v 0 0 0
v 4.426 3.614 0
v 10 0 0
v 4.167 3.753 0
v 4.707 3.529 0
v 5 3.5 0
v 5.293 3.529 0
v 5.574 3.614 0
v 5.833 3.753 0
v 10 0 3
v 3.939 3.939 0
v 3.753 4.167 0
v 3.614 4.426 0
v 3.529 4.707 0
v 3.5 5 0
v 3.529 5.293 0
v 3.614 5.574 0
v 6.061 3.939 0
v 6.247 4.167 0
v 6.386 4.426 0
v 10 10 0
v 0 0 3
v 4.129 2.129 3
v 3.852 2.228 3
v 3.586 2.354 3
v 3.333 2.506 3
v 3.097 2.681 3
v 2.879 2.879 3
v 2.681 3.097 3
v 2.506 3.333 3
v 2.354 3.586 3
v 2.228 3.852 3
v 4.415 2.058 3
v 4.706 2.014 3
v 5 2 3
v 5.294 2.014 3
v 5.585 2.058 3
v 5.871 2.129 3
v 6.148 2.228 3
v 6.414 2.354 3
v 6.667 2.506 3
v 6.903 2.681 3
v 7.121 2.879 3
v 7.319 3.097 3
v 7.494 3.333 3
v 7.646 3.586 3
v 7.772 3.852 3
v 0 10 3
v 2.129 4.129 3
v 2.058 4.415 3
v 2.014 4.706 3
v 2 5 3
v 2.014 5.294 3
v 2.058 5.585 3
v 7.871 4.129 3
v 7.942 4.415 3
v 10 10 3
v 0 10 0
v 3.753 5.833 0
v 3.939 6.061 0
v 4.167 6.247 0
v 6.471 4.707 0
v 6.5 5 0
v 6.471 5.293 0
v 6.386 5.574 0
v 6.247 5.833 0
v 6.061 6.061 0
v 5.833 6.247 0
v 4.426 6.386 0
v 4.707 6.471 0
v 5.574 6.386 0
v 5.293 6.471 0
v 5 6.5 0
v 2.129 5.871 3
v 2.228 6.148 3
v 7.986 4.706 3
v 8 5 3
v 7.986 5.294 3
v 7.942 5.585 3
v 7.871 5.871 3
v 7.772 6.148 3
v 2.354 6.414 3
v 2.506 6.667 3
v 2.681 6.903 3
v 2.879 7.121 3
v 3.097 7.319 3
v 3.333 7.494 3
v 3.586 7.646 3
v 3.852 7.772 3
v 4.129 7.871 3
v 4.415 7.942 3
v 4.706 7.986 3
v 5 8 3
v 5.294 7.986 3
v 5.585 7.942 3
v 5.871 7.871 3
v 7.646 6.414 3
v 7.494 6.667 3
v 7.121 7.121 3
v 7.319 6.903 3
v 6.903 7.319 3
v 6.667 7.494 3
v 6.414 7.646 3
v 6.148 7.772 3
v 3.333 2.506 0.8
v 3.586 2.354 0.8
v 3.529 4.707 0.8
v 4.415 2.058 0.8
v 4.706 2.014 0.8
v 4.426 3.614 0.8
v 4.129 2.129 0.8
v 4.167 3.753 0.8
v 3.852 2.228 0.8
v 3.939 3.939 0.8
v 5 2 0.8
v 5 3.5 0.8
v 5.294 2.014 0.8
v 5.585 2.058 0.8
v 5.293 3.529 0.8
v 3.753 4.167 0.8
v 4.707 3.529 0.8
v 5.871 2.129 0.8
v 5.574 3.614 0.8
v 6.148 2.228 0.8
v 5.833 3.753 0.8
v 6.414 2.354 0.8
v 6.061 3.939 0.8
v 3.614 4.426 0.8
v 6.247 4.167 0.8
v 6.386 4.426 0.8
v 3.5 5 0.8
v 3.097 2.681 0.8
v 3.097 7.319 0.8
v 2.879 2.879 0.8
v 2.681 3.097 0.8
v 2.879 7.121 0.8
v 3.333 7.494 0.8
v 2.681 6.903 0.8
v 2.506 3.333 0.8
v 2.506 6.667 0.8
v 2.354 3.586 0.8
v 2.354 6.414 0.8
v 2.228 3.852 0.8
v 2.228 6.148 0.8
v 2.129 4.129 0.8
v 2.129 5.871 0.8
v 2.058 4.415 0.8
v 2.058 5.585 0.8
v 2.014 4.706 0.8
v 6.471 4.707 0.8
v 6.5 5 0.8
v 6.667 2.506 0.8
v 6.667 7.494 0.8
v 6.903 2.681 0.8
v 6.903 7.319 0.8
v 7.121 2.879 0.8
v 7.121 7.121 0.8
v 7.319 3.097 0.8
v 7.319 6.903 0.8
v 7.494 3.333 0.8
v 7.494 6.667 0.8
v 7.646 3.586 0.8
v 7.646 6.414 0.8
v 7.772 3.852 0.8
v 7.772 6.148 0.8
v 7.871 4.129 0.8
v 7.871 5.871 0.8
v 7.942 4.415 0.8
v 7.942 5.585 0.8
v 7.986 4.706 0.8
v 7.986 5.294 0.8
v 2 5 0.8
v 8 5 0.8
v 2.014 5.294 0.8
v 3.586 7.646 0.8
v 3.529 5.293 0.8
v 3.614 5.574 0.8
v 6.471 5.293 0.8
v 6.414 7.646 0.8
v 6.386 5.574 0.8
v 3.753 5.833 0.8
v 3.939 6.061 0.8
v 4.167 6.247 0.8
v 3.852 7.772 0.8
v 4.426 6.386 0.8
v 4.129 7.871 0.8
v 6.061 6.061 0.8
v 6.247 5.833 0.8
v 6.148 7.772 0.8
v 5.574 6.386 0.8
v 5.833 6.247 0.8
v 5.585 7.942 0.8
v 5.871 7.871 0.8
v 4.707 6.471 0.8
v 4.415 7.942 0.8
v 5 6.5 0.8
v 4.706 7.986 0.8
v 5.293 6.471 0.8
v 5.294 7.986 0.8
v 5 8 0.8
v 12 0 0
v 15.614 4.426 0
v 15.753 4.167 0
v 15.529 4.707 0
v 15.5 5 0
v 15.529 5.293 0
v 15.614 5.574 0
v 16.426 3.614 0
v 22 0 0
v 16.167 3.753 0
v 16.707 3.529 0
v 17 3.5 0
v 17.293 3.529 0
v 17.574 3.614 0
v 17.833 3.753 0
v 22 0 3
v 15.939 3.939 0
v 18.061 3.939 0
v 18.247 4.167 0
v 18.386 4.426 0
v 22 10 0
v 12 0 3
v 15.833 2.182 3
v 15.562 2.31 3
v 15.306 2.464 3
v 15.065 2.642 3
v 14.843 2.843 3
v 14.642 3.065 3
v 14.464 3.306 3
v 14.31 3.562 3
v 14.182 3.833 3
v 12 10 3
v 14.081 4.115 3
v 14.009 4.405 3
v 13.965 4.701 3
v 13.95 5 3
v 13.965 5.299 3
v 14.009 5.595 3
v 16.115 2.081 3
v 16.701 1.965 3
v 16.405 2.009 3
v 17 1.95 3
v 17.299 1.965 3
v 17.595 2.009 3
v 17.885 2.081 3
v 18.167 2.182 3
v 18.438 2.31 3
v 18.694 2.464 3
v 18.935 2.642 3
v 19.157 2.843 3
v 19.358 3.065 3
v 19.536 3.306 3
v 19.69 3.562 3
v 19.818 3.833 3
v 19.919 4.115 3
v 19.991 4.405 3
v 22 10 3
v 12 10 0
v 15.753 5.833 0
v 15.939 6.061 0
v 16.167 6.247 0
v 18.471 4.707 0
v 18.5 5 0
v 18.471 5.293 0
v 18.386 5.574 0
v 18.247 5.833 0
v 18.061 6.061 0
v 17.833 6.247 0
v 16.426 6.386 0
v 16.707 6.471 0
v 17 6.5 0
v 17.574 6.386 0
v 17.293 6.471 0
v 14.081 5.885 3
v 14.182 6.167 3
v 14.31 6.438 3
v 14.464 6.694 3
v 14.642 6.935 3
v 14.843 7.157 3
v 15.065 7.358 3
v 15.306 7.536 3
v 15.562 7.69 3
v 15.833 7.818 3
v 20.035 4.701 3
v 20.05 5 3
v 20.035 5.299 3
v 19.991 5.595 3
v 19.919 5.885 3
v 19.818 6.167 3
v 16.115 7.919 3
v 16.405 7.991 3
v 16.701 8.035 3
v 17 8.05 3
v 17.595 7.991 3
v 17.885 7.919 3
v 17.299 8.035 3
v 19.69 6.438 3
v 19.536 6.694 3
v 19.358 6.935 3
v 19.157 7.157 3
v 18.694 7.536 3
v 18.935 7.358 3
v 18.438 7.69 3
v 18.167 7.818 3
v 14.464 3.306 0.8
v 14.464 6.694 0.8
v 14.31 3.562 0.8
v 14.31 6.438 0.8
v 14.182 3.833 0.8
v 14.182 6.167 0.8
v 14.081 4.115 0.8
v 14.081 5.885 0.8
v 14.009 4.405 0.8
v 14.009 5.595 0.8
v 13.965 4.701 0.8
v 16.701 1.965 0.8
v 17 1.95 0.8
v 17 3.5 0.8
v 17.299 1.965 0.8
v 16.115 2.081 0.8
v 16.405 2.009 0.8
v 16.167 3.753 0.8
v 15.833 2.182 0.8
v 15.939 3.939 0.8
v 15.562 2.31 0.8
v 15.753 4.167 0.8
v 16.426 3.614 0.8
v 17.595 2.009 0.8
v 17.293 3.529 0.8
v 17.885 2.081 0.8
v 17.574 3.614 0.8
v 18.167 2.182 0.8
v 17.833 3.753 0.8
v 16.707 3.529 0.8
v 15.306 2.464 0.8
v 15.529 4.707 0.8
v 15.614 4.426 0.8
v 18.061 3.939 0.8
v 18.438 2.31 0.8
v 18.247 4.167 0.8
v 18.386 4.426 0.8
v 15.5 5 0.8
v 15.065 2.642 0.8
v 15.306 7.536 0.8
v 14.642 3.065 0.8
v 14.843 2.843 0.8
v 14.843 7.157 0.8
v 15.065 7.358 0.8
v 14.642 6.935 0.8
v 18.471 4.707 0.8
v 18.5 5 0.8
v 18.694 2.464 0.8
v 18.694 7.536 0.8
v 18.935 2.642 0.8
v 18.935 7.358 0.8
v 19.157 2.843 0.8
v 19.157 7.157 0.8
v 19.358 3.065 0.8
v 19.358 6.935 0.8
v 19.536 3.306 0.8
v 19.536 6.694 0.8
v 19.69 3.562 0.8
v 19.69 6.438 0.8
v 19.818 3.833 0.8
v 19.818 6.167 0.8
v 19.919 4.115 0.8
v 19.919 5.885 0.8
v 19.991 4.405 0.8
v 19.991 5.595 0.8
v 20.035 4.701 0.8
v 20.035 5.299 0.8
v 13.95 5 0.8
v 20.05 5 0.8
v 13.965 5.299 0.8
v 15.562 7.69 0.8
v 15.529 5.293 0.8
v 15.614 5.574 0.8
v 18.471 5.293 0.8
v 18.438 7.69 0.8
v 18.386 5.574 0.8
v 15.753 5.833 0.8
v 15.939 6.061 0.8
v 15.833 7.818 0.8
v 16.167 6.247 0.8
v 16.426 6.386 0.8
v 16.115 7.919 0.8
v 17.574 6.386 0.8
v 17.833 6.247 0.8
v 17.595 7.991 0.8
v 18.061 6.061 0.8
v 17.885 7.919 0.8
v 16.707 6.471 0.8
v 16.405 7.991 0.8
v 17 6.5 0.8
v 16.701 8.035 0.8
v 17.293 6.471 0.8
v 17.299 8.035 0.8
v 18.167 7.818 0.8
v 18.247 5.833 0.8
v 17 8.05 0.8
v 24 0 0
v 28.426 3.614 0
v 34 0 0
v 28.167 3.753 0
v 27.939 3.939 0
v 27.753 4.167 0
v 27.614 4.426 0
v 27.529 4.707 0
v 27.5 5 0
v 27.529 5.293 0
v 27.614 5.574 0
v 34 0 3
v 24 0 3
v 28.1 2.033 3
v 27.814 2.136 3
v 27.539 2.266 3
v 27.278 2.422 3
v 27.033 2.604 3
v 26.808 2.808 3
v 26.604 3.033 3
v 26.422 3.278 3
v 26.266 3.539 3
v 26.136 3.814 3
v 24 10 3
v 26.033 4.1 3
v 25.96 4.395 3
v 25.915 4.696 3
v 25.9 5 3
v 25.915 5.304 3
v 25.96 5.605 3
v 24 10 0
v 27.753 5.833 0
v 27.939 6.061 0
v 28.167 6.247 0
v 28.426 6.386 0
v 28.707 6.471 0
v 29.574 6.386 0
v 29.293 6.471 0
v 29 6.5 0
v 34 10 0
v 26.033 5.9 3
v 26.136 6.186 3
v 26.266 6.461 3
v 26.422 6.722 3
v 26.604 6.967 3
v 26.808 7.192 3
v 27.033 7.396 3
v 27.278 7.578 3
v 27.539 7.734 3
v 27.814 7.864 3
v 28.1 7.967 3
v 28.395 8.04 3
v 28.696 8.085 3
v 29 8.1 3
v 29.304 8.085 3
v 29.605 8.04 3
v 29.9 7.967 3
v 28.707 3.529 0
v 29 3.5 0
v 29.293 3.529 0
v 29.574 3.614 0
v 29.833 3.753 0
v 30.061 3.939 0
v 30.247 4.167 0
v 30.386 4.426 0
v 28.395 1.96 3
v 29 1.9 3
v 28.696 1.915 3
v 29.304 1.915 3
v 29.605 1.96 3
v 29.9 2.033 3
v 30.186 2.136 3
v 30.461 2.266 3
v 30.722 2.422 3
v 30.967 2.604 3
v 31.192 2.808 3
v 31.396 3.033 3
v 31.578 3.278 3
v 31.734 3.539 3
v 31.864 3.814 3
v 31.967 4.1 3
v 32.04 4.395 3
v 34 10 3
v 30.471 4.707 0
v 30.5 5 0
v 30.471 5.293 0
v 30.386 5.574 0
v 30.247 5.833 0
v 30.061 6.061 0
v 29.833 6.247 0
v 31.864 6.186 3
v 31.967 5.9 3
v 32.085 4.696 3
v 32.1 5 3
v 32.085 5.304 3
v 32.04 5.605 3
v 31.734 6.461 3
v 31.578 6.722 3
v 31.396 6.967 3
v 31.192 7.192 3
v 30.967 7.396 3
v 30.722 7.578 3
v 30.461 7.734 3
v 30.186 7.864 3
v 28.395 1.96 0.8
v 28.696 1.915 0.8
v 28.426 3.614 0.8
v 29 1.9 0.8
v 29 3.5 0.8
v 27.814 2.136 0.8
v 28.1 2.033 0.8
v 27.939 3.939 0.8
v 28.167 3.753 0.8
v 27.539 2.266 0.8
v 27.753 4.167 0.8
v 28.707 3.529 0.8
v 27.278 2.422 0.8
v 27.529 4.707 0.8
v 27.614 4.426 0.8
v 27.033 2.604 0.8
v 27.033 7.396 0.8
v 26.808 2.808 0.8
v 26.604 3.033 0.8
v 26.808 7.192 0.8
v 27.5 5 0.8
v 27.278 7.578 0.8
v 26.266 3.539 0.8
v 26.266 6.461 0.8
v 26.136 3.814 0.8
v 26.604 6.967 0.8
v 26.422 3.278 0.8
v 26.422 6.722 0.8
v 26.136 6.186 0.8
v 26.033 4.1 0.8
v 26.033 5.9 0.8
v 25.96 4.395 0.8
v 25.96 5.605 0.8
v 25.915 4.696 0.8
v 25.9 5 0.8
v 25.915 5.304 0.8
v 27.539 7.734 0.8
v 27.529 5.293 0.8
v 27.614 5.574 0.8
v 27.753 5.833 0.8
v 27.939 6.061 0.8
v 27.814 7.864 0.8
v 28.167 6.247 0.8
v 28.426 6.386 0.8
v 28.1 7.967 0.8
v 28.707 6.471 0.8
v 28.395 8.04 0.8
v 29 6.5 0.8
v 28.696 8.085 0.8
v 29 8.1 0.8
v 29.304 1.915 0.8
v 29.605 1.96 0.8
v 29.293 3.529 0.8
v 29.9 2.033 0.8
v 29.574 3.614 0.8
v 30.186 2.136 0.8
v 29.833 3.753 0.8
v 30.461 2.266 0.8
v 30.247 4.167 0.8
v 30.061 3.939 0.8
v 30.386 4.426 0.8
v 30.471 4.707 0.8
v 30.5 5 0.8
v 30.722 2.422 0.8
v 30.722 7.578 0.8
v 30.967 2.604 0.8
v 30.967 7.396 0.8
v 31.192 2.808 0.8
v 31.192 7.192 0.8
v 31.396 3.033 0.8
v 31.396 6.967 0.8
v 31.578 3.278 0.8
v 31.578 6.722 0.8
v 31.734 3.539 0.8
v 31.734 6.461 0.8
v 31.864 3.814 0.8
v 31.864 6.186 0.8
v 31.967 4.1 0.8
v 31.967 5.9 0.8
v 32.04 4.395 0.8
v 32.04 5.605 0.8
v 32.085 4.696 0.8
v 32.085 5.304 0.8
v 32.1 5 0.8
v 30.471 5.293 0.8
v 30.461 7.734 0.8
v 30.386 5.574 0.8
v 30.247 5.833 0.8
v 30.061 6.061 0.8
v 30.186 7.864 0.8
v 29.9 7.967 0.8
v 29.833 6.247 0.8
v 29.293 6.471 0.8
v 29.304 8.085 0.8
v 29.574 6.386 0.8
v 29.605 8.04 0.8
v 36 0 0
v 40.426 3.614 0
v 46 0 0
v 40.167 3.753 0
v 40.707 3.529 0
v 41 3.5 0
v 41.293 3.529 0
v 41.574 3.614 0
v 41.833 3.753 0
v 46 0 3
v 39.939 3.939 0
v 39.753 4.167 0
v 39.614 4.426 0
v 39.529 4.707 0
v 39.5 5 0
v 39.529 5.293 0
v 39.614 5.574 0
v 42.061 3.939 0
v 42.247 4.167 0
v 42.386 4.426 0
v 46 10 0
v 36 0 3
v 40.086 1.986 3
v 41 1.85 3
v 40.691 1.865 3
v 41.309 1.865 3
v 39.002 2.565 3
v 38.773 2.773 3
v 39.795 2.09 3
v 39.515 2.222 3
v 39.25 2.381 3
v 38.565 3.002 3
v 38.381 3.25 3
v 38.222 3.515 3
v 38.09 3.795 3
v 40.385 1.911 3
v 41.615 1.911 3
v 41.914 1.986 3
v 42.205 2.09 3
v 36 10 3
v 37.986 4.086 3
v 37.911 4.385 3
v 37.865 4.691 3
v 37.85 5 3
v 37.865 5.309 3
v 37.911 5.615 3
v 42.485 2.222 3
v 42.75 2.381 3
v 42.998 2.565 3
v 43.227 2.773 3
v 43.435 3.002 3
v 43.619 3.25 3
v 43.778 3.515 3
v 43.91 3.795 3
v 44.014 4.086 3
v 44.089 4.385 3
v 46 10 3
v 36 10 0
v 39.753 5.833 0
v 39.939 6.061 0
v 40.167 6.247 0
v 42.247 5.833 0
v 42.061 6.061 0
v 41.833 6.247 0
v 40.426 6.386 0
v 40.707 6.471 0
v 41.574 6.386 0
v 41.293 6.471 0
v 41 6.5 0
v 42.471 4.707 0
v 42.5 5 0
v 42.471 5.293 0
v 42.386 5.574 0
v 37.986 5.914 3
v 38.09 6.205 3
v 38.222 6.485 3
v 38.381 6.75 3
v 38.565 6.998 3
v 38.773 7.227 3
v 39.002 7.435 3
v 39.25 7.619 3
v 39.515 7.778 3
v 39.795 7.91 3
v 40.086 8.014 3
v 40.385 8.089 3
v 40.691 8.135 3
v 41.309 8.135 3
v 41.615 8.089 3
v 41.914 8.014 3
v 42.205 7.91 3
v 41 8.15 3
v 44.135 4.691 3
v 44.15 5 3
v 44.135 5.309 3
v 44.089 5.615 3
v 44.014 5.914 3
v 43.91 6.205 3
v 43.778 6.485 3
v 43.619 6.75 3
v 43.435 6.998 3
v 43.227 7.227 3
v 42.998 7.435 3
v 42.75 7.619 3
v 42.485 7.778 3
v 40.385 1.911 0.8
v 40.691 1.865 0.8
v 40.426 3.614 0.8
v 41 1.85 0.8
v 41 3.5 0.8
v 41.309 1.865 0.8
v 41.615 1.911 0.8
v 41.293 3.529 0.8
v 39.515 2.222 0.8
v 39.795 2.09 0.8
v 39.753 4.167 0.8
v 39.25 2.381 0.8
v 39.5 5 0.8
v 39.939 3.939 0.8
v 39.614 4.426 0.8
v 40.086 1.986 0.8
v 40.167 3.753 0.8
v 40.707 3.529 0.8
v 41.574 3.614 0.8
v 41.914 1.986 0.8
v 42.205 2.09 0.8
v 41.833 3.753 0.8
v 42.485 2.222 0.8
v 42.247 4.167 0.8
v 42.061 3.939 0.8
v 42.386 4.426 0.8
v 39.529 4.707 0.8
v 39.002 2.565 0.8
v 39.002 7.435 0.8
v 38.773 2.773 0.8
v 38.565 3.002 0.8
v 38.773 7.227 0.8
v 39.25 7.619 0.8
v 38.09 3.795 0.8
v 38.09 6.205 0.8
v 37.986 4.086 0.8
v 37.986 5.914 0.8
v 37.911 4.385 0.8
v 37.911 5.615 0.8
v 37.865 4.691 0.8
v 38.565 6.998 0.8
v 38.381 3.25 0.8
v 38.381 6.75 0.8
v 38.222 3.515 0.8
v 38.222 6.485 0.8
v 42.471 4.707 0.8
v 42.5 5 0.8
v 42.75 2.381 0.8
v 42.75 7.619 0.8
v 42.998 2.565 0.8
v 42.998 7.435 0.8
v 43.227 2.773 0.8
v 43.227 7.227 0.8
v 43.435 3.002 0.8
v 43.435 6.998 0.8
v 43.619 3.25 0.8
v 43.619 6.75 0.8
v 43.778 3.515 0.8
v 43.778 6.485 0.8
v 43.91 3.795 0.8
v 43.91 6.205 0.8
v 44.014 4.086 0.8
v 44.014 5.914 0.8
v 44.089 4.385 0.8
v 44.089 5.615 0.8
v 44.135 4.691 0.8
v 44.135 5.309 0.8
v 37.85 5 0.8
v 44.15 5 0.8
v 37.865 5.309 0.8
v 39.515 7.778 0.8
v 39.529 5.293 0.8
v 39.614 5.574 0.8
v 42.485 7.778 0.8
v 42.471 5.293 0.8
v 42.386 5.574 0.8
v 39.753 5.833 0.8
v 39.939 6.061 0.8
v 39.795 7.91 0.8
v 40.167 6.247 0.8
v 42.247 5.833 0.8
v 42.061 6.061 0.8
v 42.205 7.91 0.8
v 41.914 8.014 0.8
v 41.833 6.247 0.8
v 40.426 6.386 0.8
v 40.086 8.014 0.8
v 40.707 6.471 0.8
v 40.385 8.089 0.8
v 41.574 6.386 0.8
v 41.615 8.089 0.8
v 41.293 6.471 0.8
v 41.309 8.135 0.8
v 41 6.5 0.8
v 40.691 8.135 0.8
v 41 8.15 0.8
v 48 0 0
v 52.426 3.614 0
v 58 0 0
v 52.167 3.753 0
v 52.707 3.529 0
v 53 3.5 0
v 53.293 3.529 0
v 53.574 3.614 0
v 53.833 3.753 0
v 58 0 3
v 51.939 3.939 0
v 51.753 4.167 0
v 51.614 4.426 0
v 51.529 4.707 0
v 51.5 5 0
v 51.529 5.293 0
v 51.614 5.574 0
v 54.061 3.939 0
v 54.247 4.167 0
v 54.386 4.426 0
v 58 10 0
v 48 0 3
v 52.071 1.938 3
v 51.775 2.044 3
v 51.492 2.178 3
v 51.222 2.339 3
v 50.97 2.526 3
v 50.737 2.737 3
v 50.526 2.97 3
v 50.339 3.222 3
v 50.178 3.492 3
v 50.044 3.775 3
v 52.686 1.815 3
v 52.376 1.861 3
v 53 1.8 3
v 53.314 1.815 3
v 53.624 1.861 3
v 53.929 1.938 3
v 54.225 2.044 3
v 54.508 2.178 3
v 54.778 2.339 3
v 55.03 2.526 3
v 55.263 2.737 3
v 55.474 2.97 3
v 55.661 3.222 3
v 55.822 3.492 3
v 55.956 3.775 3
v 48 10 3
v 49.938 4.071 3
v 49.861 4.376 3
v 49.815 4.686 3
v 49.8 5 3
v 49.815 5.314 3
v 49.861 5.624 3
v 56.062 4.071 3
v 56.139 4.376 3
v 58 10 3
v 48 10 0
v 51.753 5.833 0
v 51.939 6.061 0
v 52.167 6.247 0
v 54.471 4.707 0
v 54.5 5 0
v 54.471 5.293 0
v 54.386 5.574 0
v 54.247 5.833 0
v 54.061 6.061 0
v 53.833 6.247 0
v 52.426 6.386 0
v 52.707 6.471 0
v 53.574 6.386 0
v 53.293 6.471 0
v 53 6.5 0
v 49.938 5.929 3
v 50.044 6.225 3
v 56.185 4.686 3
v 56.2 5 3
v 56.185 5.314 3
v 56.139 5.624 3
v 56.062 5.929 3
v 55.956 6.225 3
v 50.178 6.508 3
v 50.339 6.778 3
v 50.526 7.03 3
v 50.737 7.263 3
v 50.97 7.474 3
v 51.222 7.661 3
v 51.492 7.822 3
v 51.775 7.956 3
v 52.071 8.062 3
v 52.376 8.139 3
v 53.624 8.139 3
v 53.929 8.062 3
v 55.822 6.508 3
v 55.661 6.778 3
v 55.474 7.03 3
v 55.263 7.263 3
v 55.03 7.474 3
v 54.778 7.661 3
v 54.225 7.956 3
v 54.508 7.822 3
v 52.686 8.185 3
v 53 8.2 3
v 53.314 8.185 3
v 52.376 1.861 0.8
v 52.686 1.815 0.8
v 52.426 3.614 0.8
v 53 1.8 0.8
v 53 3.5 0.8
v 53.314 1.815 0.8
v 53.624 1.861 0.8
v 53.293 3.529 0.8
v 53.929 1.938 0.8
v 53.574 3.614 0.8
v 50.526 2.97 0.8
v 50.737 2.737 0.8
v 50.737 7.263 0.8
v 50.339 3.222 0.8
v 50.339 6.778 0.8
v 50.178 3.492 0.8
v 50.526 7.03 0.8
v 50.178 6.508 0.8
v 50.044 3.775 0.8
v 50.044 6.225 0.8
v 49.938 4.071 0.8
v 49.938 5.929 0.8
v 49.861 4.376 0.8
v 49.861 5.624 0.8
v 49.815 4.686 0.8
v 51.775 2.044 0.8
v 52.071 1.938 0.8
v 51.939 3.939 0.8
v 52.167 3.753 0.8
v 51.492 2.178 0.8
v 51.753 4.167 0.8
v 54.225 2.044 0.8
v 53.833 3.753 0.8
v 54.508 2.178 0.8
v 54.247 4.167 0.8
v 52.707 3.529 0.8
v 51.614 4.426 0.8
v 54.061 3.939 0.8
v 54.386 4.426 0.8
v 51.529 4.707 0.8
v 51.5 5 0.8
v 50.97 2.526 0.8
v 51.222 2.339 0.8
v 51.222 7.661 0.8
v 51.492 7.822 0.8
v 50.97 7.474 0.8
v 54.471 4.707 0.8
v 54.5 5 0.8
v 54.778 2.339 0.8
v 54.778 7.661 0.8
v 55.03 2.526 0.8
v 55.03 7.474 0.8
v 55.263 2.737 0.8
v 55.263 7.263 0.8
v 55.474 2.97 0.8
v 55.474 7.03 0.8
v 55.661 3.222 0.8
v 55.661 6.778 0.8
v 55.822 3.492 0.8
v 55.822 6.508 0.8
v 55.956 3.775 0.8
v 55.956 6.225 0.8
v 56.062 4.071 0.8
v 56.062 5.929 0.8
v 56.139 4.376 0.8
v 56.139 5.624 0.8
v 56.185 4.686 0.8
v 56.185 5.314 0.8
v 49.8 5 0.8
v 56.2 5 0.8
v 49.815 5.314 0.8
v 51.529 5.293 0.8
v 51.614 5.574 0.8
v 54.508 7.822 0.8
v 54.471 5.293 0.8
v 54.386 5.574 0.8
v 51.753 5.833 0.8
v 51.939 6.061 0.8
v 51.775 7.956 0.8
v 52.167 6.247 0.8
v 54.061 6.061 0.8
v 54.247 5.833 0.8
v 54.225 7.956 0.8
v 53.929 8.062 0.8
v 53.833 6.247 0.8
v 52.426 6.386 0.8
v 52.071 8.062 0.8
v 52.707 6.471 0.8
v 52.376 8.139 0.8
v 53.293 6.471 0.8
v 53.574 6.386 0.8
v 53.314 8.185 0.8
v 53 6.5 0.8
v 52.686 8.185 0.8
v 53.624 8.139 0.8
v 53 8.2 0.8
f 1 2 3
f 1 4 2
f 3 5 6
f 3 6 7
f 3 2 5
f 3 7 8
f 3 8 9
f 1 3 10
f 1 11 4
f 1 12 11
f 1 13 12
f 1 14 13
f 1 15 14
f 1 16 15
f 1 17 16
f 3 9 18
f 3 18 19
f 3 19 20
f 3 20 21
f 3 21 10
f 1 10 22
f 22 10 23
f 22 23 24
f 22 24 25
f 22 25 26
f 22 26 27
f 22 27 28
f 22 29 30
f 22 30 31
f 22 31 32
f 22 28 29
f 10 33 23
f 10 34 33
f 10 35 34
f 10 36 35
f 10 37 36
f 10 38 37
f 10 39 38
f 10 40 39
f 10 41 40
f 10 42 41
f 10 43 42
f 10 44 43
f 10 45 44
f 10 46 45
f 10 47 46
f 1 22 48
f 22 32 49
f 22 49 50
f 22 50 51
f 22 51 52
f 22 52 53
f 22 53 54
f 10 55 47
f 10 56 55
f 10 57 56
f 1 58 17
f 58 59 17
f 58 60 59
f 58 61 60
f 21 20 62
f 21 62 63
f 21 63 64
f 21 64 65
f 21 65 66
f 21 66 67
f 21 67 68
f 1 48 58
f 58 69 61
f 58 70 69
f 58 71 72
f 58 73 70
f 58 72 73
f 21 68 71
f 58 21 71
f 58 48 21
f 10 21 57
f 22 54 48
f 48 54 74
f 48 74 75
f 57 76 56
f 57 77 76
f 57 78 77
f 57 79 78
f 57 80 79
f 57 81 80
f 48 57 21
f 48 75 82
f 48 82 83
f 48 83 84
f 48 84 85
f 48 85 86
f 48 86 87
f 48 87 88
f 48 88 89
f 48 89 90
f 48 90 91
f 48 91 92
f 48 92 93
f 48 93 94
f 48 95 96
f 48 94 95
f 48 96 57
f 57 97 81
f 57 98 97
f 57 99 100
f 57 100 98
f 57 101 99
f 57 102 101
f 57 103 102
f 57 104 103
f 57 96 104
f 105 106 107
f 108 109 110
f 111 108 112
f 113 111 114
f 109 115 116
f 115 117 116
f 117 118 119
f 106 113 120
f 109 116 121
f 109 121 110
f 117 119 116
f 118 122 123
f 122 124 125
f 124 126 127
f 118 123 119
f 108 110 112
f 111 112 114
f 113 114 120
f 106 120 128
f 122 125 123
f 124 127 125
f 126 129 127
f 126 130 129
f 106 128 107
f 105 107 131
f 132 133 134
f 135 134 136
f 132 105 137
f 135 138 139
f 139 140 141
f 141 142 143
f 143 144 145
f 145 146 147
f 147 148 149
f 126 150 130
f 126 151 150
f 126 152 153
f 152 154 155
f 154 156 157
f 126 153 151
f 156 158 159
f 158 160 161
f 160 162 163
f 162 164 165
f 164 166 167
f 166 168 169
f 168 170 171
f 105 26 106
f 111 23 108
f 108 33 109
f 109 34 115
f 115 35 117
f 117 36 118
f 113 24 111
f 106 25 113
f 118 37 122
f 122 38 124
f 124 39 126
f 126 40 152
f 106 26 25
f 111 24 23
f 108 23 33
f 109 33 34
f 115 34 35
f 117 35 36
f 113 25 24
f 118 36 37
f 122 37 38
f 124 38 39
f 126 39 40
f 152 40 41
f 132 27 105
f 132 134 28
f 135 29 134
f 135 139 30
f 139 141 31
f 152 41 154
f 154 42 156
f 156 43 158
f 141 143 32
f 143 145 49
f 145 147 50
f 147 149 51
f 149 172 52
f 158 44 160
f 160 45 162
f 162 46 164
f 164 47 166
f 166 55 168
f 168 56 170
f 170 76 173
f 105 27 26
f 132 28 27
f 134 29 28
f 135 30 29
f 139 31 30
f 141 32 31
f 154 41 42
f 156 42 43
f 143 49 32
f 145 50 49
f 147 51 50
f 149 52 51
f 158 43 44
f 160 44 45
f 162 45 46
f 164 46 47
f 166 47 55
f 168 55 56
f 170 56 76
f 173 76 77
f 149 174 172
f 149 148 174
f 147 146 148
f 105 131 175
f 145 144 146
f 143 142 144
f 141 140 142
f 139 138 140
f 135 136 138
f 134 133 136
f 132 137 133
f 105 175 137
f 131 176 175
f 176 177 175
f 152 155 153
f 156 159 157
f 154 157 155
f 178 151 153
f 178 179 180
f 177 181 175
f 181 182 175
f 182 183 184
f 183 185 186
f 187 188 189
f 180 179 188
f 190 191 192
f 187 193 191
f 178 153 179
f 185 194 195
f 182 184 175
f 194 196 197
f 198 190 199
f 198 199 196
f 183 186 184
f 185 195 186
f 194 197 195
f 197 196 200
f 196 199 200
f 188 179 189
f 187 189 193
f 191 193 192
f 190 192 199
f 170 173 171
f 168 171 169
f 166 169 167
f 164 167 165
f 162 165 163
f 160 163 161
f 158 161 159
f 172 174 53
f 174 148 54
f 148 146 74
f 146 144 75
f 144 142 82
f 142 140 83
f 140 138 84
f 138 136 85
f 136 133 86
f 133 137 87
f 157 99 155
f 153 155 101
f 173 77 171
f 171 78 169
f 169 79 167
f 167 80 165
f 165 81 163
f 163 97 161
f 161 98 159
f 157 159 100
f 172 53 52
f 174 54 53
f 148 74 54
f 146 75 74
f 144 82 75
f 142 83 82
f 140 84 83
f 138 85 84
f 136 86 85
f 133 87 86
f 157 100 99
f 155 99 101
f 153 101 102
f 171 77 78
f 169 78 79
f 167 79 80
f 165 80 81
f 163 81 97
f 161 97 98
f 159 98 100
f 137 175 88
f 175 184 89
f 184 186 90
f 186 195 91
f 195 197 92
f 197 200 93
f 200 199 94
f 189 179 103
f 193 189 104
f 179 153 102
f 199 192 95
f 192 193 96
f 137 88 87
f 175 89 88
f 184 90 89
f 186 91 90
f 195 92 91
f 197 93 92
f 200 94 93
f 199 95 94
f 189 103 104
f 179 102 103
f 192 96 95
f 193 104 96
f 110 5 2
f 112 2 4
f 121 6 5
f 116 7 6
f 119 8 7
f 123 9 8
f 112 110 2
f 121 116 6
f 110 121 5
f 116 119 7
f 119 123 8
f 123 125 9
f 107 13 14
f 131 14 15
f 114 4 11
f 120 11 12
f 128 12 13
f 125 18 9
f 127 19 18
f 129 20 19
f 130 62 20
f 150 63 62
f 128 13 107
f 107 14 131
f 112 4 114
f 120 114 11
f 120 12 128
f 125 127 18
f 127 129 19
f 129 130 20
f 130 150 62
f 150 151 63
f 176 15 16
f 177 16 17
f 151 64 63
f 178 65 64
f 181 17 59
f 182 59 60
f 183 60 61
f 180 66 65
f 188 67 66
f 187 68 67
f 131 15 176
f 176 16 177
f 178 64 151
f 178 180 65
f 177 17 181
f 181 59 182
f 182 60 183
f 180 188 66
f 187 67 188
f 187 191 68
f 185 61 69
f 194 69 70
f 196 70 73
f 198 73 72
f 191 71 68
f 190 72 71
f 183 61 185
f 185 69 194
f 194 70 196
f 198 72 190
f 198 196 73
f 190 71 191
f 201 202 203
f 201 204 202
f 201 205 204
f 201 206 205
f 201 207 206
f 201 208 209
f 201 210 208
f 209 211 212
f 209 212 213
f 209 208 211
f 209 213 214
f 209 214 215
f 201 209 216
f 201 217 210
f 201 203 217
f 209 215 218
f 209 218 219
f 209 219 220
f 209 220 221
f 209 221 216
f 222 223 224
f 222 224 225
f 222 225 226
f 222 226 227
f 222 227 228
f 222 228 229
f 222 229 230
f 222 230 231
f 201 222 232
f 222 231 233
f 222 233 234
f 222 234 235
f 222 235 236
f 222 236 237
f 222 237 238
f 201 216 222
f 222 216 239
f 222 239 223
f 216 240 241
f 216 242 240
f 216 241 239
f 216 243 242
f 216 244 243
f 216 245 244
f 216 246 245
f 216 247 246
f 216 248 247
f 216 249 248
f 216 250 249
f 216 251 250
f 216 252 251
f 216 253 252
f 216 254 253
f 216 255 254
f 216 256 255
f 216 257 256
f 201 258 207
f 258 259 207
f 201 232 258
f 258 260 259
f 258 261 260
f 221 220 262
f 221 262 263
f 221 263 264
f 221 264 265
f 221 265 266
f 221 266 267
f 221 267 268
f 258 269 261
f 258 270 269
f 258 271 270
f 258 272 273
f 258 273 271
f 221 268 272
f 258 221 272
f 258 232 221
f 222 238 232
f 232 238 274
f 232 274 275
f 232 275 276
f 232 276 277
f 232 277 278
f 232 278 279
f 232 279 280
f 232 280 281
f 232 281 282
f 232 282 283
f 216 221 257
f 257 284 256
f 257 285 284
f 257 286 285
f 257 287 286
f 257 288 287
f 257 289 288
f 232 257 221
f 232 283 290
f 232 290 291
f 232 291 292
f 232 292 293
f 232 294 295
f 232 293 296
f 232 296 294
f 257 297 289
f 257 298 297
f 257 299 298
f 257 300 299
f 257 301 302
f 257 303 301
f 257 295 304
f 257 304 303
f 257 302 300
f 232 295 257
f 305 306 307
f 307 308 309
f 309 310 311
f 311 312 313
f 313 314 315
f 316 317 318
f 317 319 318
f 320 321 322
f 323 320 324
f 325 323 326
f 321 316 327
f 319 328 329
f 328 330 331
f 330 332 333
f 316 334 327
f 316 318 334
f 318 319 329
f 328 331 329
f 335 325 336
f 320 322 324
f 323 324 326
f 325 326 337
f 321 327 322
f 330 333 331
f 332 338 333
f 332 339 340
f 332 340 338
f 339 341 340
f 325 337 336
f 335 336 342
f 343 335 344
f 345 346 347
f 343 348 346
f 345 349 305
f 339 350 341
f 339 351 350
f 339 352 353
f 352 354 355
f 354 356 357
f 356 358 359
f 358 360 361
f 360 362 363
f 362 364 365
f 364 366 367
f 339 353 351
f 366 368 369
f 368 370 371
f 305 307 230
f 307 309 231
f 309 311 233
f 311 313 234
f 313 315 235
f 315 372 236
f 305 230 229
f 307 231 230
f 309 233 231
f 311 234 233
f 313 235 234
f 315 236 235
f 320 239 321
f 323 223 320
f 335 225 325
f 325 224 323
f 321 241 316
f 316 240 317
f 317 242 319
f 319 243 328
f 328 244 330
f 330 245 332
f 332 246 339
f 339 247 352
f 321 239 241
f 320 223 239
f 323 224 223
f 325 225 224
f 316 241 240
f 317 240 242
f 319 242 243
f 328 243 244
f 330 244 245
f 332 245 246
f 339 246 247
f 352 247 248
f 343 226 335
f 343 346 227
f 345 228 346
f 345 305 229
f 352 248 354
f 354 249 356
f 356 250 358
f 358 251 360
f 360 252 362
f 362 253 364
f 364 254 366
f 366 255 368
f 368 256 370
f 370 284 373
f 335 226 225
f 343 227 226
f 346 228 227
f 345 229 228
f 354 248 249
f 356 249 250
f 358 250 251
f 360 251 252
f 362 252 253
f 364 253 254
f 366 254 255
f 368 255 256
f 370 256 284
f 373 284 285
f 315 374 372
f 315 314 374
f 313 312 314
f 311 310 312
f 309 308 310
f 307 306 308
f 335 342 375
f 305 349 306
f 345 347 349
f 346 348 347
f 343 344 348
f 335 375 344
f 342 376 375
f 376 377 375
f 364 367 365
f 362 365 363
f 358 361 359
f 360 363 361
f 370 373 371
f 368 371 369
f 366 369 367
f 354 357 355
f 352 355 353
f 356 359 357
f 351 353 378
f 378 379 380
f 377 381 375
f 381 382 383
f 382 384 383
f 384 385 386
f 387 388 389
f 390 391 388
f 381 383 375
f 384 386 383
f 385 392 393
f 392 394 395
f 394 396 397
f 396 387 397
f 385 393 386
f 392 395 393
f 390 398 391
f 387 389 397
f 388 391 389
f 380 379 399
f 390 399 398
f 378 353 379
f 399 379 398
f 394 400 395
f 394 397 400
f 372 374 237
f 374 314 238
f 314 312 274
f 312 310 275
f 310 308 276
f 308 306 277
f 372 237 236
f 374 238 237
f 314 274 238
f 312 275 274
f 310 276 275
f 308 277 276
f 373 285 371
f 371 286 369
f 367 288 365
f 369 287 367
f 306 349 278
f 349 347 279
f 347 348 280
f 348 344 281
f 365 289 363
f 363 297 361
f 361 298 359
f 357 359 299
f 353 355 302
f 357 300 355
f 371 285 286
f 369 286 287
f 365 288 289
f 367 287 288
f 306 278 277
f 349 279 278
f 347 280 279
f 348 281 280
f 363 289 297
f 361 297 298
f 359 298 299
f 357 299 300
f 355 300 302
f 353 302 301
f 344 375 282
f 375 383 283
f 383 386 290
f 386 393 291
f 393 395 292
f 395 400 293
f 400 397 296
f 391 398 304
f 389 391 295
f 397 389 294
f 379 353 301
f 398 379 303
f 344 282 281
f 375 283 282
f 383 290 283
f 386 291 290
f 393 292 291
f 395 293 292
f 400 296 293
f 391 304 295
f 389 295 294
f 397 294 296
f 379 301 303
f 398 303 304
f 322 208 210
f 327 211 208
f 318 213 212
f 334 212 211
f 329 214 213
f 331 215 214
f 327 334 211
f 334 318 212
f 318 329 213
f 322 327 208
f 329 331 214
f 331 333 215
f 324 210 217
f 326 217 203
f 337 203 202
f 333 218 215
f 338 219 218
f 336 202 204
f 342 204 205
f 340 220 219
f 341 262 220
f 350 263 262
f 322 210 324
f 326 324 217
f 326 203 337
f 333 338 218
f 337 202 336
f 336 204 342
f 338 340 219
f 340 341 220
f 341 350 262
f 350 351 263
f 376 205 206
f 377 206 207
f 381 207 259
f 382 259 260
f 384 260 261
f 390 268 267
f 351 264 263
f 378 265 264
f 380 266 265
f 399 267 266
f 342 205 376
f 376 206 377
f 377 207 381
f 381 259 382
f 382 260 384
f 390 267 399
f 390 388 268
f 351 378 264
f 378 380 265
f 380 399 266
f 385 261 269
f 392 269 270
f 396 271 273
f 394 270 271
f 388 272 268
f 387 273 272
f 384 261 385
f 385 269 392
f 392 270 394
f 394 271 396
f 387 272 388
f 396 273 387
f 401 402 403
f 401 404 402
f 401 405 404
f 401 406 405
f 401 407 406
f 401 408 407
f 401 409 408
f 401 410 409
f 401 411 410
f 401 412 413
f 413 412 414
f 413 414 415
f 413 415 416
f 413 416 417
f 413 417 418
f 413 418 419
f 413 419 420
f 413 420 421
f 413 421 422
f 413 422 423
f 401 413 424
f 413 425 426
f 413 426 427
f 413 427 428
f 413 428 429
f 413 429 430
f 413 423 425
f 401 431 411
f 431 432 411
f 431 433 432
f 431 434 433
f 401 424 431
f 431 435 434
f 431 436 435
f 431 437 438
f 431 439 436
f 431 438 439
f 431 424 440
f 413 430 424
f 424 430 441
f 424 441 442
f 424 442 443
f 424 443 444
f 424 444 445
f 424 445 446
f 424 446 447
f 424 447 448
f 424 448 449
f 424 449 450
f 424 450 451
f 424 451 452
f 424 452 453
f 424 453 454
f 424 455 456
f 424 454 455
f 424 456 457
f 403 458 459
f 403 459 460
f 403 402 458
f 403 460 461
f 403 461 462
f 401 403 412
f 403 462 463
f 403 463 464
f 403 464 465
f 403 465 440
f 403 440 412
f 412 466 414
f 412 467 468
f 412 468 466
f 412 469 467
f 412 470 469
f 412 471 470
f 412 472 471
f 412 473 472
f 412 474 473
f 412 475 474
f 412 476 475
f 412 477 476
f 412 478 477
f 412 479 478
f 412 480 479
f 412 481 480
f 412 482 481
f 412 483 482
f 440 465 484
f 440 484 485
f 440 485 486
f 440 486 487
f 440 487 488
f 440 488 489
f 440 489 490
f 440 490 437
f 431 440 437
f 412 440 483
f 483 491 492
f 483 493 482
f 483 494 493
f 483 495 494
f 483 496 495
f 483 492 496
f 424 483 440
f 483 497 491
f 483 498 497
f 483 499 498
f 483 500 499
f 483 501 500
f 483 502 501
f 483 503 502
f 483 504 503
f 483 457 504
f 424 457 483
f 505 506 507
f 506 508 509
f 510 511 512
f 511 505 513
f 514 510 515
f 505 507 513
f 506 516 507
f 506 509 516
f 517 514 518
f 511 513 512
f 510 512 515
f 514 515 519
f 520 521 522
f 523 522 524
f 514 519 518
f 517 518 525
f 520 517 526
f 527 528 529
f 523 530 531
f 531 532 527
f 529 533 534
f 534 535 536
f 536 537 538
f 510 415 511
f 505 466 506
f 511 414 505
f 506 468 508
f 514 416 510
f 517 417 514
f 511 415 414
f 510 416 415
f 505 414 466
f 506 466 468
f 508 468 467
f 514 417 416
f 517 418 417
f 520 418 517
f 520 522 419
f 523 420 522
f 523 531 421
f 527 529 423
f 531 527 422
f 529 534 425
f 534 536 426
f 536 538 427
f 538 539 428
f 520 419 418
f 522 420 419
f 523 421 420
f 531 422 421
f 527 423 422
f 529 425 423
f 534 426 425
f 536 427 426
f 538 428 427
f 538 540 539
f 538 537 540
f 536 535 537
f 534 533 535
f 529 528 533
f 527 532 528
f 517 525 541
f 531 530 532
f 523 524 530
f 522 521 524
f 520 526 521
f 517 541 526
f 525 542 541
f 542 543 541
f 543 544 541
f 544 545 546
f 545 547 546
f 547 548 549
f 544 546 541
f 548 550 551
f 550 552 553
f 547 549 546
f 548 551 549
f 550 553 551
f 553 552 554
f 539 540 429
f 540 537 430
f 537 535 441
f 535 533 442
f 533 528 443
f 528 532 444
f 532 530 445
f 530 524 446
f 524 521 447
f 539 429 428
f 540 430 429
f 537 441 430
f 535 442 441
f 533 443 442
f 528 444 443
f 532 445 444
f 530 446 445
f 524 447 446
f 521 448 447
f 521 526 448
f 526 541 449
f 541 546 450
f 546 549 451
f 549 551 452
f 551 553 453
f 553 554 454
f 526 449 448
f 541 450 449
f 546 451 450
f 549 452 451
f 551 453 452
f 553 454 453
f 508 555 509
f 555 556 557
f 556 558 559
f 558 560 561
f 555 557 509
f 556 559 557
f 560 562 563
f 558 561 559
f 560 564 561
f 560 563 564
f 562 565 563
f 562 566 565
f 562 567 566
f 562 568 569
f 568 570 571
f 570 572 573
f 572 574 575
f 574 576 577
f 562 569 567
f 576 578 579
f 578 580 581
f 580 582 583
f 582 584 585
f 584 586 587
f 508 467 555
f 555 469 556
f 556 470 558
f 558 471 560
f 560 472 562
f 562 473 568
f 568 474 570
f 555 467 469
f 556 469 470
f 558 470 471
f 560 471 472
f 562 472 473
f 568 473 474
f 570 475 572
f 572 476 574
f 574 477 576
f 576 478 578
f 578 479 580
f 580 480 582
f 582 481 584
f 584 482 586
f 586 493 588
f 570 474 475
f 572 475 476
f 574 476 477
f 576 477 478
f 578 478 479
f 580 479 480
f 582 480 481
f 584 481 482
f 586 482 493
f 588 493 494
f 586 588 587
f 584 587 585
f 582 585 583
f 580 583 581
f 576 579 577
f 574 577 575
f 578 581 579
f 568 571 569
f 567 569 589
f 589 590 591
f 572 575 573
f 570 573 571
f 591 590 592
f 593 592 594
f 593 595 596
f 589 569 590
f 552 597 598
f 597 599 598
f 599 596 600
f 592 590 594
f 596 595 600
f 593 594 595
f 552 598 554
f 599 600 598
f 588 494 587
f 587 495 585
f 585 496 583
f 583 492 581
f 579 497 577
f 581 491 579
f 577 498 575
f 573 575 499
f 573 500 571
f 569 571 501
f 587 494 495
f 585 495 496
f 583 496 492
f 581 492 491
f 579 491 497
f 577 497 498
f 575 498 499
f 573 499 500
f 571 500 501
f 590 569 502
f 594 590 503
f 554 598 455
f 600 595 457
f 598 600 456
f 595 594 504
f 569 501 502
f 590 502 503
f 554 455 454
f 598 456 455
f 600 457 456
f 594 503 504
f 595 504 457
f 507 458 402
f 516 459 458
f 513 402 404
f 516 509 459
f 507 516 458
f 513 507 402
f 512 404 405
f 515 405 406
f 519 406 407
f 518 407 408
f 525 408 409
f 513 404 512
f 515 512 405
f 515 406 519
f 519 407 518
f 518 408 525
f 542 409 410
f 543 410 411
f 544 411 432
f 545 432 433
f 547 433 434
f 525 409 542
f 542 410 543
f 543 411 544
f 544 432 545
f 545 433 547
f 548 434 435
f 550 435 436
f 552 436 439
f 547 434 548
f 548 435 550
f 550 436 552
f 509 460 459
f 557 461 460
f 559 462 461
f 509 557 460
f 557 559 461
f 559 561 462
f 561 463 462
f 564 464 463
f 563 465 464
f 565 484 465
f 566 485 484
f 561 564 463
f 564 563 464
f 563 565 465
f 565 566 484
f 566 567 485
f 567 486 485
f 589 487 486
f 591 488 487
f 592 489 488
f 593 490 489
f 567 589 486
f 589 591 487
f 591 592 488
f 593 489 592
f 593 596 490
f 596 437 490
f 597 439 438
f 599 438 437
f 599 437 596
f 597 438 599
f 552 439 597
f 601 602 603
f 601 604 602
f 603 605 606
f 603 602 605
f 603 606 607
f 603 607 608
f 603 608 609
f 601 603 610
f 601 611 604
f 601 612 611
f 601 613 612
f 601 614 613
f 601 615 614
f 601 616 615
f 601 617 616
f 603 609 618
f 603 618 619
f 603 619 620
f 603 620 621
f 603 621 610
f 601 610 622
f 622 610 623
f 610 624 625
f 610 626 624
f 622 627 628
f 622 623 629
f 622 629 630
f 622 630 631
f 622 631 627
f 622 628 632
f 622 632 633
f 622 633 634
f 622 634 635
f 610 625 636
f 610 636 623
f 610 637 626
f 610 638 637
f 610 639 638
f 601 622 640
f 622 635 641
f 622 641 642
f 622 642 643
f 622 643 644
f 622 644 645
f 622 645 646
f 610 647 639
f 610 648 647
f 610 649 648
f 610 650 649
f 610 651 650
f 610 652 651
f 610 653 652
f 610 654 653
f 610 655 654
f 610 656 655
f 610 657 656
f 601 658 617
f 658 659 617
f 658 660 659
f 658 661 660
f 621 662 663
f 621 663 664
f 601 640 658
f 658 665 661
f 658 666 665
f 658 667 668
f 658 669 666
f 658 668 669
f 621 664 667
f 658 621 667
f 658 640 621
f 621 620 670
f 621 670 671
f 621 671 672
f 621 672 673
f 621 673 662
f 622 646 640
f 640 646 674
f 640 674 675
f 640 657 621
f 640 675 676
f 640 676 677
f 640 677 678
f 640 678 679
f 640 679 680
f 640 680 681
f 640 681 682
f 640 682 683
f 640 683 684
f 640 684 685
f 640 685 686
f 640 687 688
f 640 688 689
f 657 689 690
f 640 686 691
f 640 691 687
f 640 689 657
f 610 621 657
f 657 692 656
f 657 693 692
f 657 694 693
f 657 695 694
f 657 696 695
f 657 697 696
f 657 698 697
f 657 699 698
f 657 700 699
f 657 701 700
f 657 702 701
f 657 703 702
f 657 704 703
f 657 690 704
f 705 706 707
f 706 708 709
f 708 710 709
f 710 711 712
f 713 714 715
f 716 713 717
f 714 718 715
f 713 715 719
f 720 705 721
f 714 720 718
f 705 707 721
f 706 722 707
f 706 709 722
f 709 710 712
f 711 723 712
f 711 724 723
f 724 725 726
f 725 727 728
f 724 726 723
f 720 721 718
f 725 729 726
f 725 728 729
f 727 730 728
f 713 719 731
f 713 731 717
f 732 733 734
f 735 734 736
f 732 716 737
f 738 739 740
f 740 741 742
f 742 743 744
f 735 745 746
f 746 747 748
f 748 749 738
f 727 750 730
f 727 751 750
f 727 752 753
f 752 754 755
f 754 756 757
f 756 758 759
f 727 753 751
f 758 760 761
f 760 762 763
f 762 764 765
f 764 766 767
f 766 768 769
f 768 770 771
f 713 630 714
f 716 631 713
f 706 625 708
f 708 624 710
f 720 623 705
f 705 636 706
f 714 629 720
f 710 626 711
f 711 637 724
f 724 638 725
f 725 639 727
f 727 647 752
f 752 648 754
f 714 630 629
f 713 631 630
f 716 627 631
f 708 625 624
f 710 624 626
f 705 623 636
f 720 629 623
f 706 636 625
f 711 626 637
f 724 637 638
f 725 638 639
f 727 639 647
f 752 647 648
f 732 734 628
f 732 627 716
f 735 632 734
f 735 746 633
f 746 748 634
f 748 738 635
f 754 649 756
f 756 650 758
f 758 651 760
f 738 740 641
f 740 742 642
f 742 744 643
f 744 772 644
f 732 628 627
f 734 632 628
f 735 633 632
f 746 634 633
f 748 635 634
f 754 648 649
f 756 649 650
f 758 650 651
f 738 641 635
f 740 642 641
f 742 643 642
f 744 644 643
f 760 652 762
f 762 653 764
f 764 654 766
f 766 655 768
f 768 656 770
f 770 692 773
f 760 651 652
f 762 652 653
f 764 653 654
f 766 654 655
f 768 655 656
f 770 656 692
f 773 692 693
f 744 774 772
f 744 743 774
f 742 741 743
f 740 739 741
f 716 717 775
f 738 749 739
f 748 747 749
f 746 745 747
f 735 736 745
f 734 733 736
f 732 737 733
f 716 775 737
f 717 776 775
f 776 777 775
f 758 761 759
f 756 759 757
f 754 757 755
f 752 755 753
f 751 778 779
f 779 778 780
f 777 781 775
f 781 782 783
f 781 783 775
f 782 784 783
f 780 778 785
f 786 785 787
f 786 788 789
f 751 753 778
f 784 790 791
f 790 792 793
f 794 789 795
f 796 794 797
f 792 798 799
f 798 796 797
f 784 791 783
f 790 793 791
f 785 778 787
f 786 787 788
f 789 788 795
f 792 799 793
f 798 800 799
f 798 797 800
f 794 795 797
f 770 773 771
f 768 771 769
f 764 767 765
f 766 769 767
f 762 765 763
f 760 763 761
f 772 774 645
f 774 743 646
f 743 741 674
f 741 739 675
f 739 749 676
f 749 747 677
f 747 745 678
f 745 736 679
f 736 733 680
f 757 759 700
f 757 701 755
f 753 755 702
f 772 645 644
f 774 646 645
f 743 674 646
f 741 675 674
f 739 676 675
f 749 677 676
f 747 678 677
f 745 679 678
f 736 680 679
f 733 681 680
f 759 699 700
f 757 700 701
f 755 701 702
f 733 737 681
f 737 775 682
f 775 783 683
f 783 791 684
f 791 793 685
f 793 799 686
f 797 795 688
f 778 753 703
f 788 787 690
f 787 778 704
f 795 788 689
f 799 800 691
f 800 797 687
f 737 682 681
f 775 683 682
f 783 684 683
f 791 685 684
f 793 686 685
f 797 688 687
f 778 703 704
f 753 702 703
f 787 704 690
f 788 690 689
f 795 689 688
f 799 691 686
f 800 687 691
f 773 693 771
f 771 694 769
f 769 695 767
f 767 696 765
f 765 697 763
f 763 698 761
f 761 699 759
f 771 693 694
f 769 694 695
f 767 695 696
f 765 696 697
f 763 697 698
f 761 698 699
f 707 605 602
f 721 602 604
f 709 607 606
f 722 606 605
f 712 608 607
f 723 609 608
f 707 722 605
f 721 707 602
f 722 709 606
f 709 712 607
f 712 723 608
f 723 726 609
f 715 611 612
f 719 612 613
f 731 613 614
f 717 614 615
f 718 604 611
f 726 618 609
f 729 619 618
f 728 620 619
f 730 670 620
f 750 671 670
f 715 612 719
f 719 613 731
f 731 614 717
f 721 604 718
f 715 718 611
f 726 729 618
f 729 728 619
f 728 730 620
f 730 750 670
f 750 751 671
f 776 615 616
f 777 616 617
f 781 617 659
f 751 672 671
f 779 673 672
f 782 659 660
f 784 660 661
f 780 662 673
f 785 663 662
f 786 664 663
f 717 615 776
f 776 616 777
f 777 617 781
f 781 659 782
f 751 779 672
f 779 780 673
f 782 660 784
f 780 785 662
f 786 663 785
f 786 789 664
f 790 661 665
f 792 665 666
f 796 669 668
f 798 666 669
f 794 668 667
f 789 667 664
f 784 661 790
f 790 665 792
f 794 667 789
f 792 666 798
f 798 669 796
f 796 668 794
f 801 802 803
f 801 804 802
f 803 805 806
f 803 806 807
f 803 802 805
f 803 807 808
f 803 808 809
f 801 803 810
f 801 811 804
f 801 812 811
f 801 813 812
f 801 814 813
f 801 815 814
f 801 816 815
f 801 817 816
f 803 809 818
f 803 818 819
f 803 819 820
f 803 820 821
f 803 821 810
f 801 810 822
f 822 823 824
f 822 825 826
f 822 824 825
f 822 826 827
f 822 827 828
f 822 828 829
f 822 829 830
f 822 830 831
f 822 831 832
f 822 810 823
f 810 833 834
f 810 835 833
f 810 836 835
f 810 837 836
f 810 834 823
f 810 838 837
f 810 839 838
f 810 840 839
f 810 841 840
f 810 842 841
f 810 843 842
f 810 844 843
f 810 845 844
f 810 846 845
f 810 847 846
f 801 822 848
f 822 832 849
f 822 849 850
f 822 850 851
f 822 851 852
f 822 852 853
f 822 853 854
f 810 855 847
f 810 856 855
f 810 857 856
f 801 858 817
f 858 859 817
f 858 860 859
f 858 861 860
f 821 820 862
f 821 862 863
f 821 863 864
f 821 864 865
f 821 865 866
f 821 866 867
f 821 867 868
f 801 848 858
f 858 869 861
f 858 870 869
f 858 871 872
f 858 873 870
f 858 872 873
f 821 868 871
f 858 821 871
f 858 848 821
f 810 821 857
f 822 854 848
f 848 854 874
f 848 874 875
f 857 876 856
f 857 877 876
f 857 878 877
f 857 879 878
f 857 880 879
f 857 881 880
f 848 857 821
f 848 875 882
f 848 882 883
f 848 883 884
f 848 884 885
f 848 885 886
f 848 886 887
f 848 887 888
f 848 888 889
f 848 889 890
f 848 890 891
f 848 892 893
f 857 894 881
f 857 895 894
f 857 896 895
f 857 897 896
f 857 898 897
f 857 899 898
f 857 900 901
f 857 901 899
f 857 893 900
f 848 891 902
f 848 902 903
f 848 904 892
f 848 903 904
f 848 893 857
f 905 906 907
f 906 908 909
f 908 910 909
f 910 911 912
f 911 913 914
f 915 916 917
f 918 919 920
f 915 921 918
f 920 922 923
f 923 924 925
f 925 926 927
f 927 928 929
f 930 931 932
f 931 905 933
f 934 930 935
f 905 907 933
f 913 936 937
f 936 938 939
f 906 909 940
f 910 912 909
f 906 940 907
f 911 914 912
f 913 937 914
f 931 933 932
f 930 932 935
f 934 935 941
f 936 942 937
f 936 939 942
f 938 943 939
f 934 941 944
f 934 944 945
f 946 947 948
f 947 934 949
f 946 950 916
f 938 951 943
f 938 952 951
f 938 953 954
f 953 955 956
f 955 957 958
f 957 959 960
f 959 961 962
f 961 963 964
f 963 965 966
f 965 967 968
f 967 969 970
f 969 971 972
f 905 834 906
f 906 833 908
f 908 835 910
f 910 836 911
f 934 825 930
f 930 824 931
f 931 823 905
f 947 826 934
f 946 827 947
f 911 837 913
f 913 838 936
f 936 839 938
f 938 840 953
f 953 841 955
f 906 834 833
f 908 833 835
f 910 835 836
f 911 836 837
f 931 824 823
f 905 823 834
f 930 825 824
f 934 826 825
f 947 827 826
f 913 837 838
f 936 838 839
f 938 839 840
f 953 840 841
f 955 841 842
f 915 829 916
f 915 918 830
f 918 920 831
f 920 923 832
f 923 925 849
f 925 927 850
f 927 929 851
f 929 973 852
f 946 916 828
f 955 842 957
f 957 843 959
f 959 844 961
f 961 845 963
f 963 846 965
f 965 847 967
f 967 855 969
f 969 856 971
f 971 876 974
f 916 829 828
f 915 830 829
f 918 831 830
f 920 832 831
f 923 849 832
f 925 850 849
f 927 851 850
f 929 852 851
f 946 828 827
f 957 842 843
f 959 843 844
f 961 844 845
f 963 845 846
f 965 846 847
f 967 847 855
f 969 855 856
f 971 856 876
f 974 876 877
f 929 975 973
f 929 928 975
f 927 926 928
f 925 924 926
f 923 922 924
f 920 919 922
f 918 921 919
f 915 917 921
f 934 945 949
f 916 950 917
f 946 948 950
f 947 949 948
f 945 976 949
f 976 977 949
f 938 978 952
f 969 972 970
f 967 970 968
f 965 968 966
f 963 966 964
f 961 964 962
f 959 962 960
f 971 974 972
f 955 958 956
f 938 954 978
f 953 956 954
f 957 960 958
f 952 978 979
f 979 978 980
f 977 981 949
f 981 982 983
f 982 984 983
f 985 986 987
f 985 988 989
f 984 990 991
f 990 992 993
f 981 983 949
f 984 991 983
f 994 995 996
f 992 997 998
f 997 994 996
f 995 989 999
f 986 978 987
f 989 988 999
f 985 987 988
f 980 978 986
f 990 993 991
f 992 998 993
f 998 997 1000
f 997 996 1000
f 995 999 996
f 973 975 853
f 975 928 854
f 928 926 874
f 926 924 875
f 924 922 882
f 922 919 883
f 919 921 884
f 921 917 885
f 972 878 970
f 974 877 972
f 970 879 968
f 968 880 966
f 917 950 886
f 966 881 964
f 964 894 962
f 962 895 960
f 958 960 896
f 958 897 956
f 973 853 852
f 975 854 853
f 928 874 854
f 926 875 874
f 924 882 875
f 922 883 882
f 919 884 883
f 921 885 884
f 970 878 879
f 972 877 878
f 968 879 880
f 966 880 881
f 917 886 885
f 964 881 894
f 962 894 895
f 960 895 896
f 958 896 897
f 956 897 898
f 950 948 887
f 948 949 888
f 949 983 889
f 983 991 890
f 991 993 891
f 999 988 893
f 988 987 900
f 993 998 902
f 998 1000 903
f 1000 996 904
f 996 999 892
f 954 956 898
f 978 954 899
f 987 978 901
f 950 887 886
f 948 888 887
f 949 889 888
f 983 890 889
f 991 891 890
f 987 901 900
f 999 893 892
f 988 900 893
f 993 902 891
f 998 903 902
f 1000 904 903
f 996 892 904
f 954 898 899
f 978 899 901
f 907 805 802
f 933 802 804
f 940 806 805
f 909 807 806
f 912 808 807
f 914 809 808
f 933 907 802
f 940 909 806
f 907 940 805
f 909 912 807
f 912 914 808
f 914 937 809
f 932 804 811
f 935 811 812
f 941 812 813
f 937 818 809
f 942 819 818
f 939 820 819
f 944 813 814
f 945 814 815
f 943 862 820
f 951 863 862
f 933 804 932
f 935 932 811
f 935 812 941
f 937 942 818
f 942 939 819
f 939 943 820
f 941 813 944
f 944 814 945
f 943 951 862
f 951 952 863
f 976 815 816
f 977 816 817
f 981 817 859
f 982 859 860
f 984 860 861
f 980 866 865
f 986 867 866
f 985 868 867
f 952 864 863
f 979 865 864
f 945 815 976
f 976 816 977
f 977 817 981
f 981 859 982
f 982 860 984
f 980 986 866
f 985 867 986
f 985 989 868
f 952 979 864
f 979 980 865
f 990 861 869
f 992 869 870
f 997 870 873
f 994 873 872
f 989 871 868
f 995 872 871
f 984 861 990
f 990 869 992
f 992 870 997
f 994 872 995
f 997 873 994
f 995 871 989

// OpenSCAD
// Pocket fit test for 6×2mm neodymium discs — find the clearance where the
// magnet presses in snugly by hand (for pause-capture inserts).
// Poke hole underneath to push the magnet back out.

magnet_d = 6;
magnet_h = 2;
increment = 0.1;

block = 10;
block_h = 3;
pocket_depth = magnet_h + 0.2;

for (i = [0:4]) {
  pocket_d = magnet_d + i * increment;
  translate(v=[i * (block + 2), 0, 0]) {
    difference() {
      cube([block, block, block_h]);
      translate(v=[block / 2, block / 2, block_h - pocket_depth])
        cylinder(h=pocket_depth + 1, d=pocket_d, $fn=64);
      translate(v=[block / 2, block / 2, -1])
        cylinder(h=block_h, d=3, $fn=32);
    }
  }
}
